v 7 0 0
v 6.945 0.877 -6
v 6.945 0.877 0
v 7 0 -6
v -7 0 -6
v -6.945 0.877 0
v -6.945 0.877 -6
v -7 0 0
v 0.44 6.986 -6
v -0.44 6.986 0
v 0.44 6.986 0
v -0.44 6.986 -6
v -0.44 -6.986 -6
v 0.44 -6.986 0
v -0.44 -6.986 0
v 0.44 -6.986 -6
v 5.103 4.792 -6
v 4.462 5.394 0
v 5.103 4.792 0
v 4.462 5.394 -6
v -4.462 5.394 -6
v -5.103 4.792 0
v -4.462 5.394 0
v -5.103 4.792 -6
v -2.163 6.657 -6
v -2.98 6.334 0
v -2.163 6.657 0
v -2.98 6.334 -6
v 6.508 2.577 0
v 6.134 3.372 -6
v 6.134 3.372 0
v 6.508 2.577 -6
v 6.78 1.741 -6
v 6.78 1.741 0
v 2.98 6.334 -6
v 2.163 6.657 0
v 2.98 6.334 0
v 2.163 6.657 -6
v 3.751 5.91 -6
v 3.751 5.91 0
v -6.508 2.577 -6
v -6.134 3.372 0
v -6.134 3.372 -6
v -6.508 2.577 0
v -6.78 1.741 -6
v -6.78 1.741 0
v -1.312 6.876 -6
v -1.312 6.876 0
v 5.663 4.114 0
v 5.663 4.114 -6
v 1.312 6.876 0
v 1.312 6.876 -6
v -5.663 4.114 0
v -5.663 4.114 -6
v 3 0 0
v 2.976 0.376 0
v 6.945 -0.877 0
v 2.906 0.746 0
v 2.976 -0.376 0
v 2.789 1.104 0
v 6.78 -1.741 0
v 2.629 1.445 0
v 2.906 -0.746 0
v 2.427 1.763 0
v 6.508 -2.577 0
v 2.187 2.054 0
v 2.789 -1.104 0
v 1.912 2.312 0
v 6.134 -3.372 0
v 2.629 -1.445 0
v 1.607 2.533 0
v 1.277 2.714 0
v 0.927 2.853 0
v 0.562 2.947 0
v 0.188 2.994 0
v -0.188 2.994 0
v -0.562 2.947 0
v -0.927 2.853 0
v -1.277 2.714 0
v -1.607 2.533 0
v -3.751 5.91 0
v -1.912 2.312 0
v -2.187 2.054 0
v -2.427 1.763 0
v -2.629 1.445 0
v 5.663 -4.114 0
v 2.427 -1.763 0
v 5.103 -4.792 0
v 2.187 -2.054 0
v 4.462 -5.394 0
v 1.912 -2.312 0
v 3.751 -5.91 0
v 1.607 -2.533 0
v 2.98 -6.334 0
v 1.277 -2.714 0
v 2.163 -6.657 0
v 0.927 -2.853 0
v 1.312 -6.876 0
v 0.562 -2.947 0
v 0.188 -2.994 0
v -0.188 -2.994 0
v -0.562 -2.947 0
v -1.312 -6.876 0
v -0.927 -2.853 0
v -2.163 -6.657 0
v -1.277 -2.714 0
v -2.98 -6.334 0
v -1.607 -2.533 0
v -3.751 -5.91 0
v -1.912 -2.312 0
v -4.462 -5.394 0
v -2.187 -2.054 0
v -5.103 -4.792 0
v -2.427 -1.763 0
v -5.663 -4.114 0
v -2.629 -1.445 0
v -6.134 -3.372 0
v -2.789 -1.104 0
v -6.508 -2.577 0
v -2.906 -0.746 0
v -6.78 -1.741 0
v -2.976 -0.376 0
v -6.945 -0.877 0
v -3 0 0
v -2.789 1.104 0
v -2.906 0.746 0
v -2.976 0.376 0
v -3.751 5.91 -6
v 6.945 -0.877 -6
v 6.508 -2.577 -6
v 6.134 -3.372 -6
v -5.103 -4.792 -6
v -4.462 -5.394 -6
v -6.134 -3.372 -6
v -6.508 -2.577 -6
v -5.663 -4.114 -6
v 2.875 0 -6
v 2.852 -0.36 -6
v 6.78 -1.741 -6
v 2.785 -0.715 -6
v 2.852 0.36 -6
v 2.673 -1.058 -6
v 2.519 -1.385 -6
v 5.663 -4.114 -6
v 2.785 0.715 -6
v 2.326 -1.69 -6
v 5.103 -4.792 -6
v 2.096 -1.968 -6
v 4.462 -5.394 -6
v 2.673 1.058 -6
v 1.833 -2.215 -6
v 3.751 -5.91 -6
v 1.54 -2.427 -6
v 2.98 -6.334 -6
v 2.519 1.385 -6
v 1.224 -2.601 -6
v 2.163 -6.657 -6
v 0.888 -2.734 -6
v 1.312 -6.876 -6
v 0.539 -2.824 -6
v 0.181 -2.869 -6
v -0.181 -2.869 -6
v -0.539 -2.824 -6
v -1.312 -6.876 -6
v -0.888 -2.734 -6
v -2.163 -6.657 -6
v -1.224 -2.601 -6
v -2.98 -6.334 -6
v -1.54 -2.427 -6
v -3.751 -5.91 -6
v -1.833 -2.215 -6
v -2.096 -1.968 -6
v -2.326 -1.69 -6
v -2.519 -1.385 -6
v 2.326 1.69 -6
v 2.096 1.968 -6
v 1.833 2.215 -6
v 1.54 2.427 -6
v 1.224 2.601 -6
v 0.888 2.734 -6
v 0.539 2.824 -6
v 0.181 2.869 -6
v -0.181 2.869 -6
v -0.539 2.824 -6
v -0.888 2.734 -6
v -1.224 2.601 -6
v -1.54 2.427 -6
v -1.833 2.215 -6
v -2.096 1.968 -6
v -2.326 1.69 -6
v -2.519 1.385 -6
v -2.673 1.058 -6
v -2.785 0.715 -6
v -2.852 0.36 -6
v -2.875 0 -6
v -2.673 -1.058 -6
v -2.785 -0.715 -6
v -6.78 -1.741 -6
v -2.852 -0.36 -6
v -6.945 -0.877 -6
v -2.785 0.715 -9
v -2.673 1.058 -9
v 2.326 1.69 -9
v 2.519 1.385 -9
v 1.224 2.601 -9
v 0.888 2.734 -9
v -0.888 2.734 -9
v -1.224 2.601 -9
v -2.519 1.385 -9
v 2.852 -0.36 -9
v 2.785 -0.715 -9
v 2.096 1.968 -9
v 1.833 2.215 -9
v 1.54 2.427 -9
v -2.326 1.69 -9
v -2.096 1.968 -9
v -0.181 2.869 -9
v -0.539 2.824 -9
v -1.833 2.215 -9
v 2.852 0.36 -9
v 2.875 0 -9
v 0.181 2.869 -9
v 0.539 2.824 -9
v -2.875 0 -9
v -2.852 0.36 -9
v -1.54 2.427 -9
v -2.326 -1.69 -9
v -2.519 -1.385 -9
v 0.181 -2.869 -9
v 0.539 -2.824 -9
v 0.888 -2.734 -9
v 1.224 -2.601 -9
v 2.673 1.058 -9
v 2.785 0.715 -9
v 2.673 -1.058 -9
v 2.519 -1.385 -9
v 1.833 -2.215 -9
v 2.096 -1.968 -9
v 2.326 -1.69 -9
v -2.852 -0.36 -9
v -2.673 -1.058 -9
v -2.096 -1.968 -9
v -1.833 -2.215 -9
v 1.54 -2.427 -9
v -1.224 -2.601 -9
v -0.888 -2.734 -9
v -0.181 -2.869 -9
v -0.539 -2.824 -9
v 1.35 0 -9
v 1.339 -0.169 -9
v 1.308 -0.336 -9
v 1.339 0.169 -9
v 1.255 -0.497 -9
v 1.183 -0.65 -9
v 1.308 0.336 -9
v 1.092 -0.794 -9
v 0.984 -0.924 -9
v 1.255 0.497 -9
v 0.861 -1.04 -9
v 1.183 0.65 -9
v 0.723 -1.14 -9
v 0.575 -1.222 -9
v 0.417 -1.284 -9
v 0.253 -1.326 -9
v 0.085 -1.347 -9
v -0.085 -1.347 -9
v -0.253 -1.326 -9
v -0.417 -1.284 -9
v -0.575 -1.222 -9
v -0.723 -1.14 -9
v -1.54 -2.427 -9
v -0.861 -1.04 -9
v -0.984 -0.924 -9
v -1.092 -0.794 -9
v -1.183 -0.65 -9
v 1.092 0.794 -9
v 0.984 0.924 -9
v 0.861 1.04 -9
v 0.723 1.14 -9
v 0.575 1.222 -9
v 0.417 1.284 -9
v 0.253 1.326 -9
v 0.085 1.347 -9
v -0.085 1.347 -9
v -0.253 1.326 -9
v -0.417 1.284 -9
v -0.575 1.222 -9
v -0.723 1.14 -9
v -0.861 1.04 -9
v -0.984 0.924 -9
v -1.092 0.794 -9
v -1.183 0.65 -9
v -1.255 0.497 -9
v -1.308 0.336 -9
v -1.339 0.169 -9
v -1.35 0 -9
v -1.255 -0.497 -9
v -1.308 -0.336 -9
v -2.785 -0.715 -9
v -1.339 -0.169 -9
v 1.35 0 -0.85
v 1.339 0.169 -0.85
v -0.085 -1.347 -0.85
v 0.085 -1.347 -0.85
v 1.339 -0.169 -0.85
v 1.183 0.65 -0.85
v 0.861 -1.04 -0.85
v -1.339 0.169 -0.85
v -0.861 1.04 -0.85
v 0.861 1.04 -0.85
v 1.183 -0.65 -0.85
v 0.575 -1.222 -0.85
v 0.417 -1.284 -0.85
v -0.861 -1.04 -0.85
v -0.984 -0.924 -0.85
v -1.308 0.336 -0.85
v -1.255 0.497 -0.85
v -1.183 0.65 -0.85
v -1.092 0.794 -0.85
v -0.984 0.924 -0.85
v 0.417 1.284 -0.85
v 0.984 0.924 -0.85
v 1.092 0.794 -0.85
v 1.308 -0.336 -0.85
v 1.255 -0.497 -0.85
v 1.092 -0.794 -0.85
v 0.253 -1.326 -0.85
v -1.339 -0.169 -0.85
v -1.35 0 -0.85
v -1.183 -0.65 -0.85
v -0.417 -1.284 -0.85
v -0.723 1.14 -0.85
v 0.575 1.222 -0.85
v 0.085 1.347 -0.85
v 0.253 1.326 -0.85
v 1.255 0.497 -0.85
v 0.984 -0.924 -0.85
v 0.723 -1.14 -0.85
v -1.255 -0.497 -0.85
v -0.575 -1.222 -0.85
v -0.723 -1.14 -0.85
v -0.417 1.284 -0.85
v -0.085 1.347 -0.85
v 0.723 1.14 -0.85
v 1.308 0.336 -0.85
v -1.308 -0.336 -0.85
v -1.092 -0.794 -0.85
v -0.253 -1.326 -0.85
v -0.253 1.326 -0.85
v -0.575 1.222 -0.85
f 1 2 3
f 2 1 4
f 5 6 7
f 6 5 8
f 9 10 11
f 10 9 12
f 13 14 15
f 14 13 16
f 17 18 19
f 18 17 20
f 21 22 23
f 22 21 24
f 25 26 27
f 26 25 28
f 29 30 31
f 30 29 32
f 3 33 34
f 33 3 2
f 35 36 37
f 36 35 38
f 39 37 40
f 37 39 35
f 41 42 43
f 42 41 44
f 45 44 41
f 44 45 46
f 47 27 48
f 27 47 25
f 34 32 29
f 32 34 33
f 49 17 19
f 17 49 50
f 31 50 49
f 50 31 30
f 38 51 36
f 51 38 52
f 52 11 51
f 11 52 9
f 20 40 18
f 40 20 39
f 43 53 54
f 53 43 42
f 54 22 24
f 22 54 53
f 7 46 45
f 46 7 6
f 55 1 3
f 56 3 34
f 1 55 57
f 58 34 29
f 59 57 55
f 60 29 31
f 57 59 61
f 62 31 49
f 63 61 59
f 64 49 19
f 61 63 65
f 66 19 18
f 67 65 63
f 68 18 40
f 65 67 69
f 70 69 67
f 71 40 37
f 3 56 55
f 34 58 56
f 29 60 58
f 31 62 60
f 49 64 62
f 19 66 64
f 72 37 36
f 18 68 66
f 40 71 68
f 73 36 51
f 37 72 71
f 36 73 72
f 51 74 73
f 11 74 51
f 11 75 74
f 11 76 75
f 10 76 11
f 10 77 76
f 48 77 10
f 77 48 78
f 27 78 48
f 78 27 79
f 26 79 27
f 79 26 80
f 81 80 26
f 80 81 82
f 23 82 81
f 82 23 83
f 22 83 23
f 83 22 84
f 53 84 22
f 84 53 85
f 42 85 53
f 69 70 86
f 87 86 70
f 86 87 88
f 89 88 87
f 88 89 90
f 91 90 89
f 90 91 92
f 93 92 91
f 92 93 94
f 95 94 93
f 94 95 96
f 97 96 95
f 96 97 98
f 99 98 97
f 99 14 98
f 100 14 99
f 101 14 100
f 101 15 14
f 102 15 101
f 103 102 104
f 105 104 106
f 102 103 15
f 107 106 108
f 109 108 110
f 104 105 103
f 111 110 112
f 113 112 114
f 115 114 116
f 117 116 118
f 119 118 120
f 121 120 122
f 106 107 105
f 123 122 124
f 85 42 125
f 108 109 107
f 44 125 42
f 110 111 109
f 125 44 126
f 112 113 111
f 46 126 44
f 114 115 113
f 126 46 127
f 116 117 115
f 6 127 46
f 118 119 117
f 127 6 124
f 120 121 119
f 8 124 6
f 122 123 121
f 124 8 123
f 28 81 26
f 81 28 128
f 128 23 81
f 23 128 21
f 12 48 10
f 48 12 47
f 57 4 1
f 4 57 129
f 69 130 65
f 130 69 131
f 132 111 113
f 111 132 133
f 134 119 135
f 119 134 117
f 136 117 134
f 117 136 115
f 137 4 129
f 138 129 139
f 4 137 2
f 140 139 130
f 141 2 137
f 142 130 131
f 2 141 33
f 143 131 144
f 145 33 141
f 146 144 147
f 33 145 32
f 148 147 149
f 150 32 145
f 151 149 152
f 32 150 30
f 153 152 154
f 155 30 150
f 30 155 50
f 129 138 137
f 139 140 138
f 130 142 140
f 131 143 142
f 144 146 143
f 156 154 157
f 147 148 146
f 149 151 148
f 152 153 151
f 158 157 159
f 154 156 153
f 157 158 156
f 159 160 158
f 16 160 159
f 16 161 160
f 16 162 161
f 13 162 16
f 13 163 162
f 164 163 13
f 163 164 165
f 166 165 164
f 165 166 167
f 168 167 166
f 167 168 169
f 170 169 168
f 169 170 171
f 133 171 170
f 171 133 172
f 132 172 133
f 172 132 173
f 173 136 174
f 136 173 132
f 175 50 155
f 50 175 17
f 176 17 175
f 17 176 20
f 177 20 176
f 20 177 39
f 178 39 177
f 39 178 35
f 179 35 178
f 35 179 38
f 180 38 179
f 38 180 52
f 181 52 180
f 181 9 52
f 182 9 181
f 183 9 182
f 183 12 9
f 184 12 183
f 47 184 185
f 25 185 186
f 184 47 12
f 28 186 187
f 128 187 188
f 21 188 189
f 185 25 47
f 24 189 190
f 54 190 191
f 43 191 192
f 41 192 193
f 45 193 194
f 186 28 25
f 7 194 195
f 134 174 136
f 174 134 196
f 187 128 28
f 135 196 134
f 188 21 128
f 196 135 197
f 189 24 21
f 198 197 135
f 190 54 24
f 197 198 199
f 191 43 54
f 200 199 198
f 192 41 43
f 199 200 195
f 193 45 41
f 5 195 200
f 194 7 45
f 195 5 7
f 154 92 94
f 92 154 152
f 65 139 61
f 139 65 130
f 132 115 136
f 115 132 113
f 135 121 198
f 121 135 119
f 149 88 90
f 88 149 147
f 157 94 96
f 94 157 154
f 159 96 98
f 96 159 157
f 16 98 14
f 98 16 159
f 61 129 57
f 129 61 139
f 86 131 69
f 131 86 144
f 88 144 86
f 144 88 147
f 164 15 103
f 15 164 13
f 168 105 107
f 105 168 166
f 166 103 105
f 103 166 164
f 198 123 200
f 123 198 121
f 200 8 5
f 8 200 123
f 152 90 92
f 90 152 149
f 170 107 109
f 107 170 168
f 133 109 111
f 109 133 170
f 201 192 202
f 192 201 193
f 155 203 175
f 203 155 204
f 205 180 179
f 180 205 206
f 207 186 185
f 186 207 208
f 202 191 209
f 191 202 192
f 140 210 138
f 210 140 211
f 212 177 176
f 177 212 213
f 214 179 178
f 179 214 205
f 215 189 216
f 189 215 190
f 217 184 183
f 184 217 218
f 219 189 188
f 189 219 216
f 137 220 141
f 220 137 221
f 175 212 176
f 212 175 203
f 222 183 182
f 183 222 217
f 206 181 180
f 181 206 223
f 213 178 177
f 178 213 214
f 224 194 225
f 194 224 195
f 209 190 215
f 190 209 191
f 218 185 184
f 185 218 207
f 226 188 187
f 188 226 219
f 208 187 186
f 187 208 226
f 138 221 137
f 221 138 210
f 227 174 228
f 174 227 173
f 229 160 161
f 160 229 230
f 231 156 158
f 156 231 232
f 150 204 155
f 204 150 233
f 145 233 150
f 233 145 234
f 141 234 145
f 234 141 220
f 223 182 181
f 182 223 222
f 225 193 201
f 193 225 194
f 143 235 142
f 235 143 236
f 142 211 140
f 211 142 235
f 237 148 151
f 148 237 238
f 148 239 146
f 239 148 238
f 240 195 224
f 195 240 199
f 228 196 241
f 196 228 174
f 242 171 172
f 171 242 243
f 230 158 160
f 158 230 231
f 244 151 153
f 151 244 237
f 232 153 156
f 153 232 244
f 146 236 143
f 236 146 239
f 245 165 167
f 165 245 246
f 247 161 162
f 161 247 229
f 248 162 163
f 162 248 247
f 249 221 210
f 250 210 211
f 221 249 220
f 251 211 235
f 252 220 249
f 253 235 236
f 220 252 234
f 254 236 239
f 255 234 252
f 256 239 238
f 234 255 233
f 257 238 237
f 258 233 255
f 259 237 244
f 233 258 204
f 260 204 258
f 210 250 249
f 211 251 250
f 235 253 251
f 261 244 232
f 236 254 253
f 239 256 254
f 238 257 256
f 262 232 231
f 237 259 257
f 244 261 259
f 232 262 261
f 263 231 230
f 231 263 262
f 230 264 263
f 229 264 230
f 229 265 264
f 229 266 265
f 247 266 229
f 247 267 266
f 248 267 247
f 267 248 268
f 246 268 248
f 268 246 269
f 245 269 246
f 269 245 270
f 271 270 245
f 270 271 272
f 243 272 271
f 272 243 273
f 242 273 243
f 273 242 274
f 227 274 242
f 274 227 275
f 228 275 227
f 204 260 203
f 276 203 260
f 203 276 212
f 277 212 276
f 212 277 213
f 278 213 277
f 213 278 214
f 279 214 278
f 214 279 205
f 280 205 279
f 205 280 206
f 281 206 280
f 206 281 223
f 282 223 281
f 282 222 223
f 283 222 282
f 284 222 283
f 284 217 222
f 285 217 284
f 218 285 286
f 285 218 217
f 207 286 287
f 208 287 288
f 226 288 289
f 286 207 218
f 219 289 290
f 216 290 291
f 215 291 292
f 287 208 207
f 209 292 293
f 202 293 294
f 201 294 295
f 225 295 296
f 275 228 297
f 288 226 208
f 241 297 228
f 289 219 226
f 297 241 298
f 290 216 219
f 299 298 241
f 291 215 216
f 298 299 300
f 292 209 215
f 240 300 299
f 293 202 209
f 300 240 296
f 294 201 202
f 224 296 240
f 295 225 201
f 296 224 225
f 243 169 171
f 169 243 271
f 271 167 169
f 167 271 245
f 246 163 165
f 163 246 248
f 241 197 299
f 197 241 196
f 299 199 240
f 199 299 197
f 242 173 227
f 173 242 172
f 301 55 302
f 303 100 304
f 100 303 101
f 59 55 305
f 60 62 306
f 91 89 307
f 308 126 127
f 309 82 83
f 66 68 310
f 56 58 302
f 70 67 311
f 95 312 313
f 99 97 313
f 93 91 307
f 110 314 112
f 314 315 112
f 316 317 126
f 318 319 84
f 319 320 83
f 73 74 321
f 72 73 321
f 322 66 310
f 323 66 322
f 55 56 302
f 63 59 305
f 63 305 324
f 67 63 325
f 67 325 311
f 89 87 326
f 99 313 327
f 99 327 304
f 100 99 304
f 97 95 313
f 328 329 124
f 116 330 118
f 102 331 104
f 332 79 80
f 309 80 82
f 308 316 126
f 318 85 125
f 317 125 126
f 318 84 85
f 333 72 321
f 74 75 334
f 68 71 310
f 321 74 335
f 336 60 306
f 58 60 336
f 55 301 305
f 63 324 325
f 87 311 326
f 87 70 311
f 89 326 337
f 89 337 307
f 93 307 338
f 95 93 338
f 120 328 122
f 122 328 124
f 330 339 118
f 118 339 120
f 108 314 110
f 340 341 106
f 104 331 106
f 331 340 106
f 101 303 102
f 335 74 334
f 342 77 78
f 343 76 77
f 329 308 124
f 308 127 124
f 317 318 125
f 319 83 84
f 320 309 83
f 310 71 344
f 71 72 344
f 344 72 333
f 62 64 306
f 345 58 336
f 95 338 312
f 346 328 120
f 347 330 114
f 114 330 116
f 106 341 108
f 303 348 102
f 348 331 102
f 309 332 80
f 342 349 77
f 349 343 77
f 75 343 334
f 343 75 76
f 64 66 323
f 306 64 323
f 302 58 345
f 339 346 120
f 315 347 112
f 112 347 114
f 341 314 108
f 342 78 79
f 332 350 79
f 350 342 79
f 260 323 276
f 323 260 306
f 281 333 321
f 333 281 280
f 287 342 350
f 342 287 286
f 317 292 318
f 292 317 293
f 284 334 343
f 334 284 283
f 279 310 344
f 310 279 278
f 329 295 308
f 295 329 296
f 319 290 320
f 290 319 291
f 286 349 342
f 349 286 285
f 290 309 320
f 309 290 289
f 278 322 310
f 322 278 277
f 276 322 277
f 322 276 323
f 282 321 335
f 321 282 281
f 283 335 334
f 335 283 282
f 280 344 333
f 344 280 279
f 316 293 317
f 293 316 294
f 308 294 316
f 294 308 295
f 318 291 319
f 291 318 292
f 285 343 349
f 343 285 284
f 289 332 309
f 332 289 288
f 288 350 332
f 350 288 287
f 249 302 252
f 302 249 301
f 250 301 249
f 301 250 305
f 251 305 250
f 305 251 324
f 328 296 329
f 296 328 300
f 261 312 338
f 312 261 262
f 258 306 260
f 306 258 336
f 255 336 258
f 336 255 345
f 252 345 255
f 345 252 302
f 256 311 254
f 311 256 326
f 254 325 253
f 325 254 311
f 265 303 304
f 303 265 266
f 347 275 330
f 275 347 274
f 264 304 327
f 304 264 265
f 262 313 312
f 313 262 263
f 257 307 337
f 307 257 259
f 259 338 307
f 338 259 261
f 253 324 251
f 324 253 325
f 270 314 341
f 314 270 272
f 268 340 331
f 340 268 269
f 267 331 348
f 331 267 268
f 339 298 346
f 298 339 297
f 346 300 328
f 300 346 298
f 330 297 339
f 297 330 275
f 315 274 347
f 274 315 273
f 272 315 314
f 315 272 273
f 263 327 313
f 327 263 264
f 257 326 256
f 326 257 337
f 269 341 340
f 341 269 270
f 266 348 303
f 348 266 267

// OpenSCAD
$fn = 50;


difference() {
	union() {
		translate(v = [0, 0, -6.0000000000]) {
			cylinder(h = 6, r = 7.0000000000);
		}
		translate(v = [0, 0, -9.0000000000]) {
			cylinder(h = 9, r = 2.8750000000);
		}
	}
	union() {
		translate(v = [0, 0, 0]) {
			rotate(a = [0, 0, 0]) {
				difference() {
					union() {
						translate(v = [0, 0, -9.0000000000]) {
							cylinder(h = 9, r = 1.0000000000);
						}
						translate(v = [0, 0, -0.8500000000]) {
							cylinder(h = 0.8500000000, r1 = 1.3500000000, r2 = 3.0000000000);
						}
						translate(v = [0, 0, -9.0000000000]) {
							cylinder(h = 9, r = 1.3500000000);
						}
						translate(v = [0, 0, -9.0000000000]) {
							cylinder(h = 9, r = 1.0000000000);
						}
					}
					union();
				}
			}
		}
	}
}
